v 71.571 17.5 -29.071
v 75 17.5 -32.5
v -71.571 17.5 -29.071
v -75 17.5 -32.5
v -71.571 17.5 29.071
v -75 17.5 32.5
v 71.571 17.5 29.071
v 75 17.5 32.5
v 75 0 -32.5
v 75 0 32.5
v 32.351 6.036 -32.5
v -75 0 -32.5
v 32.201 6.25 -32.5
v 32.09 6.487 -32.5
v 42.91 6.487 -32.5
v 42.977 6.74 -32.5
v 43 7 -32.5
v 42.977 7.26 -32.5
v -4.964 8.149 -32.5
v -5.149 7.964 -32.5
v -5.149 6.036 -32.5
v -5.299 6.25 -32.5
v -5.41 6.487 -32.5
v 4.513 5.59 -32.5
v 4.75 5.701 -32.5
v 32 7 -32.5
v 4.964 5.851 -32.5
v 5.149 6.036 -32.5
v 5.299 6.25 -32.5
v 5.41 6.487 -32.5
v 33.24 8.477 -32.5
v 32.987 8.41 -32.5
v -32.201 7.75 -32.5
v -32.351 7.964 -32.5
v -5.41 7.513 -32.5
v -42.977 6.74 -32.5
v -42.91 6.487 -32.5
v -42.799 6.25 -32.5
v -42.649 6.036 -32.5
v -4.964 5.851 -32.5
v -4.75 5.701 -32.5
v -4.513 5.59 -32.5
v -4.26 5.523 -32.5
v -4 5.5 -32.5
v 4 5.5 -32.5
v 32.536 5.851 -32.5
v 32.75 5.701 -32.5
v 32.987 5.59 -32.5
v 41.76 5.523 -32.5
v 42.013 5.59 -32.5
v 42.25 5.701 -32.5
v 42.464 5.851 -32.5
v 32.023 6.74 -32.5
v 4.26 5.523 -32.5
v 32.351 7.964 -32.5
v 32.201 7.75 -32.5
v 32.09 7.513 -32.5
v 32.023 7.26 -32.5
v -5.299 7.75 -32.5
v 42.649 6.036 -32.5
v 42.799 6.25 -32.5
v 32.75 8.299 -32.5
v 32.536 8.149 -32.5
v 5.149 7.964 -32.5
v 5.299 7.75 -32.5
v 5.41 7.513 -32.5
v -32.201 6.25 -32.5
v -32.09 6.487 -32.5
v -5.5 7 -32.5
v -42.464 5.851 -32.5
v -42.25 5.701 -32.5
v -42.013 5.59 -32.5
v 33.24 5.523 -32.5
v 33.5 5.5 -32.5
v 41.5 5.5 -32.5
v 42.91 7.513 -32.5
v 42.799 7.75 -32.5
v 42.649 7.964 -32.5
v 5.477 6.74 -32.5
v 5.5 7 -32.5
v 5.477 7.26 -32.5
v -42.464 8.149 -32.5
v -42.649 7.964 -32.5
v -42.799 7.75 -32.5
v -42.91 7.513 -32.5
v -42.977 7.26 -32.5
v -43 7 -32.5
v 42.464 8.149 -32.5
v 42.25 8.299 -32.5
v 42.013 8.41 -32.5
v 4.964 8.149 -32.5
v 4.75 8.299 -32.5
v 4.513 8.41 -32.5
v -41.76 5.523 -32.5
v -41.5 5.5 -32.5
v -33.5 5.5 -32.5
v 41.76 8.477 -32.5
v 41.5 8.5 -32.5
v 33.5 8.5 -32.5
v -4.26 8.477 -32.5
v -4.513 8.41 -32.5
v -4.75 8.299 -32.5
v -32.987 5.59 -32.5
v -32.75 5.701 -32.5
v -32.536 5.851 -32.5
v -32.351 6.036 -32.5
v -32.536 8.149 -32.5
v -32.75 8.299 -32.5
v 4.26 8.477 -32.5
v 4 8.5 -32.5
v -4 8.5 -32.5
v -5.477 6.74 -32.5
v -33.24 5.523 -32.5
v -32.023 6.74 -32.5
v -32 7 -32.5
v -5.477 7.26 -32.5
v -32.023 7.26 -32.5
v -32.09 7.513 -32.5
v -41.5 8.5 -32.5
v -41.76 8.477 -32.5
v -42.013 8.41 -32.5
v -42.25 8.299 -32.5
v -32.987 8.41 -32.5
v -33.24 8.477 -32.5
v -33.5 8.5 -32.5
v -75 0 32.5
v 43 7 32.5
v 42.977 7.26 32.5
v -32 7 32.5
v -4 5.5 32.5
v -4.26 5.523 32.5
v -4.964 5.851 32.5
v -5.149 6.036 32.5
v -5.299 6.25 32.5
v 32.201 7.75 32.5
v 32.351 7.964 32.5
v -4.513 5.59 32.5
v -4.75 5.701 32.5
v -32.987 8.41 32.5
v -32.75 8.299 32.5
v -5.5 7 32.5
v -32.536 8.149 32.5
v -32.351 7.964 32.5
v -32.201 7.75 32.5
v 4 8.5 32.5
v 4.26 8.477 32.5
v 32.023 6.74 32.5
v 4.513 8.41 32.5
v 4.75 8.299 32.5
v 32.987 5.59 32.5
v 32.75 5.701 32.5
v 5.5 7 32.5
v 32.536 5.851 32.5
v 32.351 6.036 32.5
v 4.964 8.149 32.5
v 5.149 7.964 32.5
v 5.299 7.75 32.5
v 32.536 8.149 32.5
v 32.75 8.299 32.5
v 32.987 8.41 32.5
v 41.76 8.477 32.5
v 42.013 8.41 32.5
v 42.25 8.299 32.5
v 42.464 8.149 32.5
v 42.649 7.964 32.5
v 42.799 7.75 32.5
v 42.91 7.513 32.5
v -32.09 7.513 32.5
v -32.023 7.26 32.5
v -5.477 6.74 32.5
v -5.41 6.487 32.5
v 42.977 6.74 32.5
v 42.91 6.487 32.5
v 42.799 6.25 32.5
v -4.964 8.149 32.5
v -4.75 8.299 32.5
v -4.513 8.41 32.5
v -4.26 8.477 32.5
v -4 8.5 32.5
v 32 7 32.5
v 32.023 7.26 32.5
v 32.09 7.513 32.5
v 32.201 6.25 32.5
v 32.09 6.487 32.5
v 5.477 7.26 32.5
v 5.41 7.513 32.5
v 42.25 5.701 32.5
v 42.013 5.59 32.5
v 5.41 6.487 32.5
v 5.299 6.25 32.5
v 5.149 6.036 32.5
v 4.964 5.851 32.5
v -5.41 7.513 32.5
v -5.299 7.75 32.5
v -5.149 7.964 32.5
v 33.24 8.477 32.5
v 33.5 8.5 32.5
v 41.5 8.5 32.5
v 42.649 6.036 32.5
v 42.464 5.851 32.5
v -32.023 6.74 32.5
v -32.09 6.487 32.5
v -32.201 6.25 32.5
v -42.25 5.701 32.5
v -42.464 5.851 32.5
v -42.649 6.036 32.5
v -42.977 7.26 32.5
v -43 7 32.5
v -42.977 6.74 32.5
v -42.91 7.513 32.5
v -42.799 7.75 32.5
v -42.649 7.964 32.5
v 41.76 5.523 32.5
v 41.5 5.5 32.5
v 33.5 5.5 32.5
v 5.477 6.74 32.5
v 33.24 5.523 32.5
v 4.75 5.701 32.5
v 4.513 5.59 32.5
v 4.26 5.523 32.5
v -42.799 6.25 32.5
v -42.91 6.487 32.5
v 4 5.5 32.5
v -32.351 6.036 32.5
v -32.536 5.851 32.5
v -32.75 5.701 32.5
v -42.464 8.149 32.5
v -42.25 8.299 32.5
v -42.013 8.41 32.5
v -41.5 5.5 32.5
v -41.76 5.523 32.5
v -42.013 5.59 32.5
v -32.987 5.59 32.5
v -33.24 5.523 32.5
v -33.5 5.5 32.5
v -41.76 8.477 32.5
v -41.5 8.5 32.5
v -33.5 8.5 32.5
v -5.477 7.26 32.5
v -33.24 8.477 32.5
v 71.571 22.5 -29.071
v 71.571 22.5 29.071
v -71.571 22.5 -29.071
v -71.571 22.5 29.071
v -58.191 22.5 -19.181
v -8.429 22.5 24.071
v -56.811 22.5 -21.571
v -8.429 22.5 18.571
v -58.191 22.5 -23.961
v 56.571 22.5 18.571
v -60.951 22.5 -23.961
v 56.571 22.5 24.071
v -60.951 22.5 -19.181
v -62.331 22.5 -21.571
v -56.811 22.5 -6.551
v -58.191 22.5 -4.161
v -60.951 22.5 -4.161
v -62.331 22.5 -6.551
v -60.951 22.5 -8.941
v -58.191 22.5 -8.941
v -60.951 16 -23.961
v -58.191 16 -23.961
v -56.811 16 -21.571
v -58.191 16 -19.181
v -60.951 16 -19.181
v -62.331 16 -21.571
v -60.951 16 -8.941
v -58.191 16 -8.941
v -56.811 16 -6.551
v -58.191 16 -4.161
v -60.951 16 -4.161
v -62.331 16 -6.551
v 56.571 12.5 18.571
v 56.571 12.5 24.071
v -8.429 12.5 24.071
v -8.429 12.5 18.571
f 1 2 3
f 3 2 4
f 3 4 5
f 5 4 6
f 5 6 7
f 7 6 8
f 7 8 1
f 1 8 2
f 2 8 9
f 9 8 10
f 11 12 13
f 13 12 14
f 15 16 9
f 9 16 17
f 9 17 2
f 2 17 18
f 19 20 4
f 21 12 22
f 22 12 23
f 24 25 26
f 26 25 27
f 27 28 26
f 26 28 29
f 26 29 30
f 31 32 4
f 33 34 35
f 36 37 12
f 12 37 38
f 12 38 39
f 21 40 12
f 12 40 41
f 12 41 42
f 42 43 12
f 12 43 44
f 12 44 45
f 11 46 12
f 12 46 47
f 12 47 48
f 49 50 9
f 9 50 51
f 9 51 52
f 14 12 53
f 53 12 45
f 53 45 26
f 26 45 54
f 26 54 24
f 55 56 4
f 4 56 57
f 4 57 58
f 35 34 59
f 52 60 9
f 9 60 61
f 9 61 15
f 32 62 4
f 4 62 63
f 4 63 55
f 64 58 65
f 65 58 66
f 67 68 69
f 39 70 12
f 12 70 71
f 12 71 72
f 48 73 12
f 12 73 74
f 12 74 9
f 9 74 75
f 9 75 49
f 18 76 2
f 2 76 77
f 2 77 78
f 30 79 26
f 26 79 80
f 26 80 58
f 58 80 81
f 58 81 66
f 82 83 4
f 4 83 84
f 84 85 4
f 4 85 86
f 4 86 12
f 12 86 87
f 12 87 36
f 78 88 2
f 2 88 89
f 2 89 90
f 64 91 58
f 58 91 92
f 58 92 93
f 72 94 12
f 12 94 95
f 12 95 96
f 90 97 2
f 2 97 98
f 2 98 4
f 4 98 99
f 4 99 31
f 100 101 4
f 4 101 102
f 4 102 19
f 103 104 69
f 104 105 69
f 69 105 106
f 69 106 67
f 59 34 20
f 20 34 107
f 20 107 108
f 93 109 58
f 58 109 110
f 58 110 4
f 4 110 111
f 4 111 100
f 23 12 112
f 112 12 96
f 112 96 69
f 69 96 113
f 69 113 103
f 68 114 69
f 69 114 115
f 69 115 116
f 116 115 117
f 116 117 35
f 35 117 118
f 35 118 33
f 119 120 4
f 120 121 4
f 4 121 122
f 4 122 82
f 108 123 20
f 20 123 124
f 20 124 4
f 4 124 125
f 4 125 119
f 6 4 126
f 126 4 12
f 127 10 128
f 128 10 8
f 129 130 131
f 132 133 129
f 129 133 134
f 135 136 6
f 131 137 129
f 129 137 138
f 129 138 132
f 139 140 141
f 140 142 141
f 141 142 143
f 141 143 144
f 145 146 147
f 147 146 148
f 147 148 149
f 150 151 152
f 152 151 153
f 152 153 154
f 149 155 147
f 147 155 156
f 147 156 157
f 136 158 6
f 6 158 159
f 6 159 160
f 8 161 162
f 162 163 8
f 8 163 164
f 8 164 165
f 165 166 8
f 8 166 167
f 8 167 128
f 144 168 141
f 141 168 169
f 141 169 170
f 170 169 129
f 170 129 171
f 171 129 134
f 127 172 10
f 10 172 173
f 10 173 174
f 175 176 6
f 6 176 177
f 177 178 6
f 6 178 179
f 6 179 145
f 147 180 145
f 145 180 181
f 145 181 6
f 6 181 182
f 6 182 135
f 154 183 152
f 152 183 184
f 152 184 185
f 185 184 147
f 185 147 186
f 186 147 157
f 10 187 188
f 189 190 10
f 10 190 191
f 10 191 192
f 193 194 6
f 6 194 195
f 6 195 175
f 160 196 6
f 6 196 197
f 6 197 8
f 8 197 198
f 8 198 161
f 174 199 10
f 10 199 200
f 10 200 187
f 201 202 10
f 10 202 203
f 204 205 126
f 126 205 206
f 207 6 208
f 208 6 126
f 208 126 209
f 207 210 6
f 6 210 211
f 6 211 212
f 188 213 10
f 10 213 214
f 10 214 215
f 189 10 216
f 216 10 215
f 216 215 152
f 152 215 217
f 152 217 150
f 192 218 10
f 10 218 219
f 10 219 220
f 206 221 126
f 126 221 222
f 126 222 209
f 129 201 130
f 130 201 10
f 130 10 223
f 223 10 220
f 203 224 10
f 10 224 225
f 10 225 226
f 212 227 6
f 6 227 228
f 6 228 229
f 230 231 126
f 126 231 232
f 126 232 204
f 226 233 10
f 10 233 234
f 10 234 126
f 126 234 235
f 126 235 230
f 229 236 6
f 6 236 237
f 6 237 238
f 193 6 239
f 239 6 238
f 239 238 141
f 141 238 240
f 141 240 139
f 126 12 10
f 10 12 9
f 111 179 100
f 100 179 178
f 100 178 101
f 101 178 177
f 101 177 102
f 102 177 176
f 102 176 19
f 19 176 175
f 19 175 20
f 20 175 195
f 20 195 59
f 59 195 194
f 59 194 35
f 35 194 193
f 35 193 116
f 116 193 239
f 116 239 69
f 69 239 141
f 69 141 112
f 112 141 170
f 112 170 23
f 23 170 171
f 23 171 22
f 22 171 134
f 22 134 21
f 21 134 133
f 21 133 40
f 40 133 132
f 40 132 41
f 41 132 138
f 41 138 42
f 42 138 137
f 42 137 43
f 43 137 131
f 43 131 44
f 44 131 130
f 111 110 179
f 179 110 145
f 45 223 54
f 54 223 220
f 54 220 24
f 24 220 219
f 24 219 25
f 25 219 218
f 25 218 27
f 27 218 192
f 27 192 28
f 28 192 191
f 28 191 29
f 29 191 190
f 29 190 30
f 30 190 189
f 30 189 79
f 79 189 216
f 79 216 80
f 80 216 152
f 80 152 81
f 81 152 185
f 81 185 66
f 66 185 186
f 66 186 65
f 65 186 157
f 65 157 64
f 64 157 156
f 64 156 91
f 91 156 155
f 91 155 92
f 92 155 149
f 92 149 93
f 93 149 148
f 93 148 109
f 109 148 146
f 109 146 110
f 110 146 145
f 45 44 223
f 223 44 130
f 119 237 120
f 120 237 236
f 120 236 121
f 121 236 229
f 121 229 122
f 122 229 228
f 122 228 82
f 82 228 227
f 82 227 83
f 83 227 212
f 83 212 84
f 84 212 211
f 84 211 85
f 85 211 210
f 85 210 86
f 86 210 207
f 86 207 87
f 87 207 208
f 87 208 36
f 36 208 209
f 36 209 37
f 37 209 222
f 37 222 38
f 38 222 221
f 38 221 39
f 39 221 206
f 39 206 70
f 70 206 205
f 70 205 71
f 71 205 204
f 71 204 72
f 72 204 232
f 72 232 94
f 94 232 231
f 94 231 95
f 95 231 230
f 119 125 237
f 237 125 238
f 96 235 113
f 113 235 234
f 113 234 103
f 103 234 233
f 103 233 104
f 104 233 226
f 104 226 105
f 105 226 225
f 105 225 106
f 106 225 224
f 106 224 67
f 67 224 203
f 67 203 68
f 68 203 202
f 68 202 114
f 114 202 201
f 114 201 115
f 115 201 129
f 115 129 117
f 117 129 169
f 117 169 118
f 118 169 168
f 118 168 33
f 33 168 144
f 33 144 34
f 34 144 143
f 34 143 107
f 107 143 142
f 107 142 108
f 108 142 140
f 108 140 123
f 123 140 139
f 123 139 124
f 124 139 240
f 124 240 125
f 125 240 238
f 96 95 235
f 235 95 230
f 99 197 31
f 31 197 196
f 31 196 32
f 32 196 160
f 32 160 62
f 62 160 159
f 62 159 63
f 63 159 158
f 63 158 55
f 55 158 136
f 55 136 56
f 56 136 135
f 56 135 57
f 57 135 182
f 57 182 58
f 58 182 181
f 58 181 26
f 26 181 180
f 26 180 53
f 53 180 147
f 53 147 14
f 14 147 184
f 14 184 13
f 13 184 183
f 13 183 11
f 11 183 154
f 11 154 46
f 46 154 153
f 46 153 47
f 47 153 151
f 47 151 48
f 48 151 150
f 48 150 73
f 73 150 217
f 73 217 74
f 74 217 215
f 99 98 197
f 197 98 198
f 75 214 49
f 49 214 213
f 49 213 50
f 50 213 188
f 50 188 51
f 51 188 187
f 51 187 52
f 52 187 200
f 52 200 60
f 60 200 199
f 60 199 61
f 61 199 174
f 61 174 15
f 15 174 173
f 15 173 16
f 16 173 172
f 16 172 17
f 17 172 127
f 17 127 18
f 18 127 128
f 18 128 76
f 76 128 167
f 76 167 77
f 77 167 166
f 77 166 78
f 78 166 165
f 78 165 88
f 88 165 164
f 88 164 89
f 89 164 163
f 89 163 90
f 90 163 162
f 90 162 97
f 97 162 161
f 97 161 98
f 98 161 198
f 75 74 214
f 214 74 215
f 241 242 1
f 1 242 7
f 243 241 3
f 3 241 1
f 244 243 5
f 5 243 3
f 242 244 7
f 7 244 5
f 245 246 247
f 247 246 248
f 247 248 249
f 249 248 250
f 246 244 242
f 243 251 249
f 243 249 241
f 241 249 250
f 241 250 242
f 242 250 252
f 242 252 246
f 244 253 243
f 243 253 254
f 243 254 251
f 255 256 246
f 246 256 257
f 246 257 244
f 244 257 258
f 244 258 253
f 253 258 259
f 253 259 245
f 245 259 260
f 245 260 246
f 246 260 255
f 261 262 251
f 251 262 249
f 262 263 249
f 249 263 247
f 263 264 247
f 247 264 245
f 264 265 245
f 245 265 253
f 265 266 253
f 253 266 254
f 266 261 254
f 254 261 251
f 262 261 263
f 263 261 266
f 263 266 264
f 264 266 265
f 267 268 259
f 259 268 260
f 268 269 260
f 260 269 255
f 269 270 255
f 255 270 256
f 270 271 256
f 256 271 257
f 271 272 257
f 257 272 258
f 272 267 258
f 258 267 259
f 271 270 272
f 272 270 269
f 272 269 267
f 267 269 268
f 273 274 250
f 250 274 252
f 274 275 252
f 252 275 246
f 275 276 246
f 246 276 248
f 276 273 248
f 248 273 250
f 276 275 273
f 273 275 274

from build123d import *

# Parameters (mm, degrees)
SKETCH1_W           = 150
SKETCH1_H           = 65
BOSS_EXTRUDE1_DEPTH = 17.5
CUT_EXTRUDE1_DEPTH  = 66
SKETCH3_W           = 143.142
SKETCH3_H           = 58.142
BOSS_EXTRUDE2_DEPTH = 5
CUT_EXTRUDE2_DEPTH  = 6.5
SKETCH6_W           = 65
SKETCH6_H           = 5.5
CUT_EXTRUDE3_DEPTH  = 10


with BuildPart() as part:
    # Sketch1 → Boss-Extrude1 (new body)
    with BuildSketch(Plane(origin=(0, 0, 0), x_dir=(1, 0, 0), z_dir=(0, 1, 0))):
        Rectangle(SKETCH1_W, SKETCH1_H)
    extrude(amount=BOSS_EXTRUDE1_DEPTH)

    # Sketch2 → Cut-Extrude1 (cut, through all)
    with BuildSketch(Plane.XY.offset(32.5)):
        with BuildLine():
            Line((-4, 8.5), (4, 8.5))
            ThreePointArc((4, 8.5), (5.5, 7), (4, 5.5))
            Line((4, 5.5), (-4, 5.5))
            ThreePointArc((-4, 5.5), (-5.5, 7), (-4, 8.5))
        make_face()
        with BuildLine():
            Line((-41.5, 8.5), (-33.5, 8.5))
            ThreePointArc((-33.5, 8.5), (-32, 7), (-33.5, 5.5))
            Line((-33.5, 5.5), (-41.5, 5.5))
            ThreePointArc((-41.5, 5.5), (-43, 7), (-41.5, 8.5))
        make_face()
        with BuildLine():
            Line((33.5, 8.5), (41.5, 8.5))
            ThreePointArc((41.5, 8.5), (43, 7), (41.5, 5.5))
            Line((41.5, 5.5), (33.5, 5.5))
            ThreePointArc((33.5, 5.5), (32, 7), (33.5, 8.5))
        make_face()
    extrude(amount=-CUT_EXTRUDE1_DEPTH, mode=Mode.SUBTRACT)

    # Sketch3 → Boss-Extrude2 (add)
    with BuildSketch(Plane(origin=(0, 17.5, 0), x_dir=(1, 0, 0), z_dir=(0, 1, 0))):
        Rectangle(SKETCH3_W, SKETCH3_H)
    extrude(amount=BOSS_EXTRUDE2_DEPTH)

    # Sketch4 → Cut-Extrude2 (cut)
    with BuildSketch(Plane(origin=(0, 22.5, 0), x_dir=(1, 0, 0), z_dir=(0, 1, 0))):
        Polygon((-60.950867143, 23.961), (-62.330734287, 21.571), (-60.950867143, 19.181), (-58.191132857, 19.181), (-56.811265713, 21.571), (-58.191132857, 23.961), align=None)
        Polygon((-60.950867143, 8.941), (-62.330734287, 6.551), (-60.950867143, 4.161), (-58.191132857, 4.161), (-56.811265713, 6.551), (-58.191132857, 8.941), align=None)
    extrude(amount=-CUT_EXTRUDE2_DEPTH, mode=Mode.SUBTRACT)

    # Sketch6 → Cut-Extrude3 (cut)
    with BuildSketch(Plane(origin=(0, 22.5, 0), x_dir=(1, 0, 0), z_dir=(0, 1, 0))):
        with Locations((24.071, -21.321)):
            Rectangle(SKETCH6_W, SKETCH6_H)
    extrude(amount=-CUT_EXTRUDE3_DEPTH, mode=Mode.SUBTRACT)


solid = part.part
